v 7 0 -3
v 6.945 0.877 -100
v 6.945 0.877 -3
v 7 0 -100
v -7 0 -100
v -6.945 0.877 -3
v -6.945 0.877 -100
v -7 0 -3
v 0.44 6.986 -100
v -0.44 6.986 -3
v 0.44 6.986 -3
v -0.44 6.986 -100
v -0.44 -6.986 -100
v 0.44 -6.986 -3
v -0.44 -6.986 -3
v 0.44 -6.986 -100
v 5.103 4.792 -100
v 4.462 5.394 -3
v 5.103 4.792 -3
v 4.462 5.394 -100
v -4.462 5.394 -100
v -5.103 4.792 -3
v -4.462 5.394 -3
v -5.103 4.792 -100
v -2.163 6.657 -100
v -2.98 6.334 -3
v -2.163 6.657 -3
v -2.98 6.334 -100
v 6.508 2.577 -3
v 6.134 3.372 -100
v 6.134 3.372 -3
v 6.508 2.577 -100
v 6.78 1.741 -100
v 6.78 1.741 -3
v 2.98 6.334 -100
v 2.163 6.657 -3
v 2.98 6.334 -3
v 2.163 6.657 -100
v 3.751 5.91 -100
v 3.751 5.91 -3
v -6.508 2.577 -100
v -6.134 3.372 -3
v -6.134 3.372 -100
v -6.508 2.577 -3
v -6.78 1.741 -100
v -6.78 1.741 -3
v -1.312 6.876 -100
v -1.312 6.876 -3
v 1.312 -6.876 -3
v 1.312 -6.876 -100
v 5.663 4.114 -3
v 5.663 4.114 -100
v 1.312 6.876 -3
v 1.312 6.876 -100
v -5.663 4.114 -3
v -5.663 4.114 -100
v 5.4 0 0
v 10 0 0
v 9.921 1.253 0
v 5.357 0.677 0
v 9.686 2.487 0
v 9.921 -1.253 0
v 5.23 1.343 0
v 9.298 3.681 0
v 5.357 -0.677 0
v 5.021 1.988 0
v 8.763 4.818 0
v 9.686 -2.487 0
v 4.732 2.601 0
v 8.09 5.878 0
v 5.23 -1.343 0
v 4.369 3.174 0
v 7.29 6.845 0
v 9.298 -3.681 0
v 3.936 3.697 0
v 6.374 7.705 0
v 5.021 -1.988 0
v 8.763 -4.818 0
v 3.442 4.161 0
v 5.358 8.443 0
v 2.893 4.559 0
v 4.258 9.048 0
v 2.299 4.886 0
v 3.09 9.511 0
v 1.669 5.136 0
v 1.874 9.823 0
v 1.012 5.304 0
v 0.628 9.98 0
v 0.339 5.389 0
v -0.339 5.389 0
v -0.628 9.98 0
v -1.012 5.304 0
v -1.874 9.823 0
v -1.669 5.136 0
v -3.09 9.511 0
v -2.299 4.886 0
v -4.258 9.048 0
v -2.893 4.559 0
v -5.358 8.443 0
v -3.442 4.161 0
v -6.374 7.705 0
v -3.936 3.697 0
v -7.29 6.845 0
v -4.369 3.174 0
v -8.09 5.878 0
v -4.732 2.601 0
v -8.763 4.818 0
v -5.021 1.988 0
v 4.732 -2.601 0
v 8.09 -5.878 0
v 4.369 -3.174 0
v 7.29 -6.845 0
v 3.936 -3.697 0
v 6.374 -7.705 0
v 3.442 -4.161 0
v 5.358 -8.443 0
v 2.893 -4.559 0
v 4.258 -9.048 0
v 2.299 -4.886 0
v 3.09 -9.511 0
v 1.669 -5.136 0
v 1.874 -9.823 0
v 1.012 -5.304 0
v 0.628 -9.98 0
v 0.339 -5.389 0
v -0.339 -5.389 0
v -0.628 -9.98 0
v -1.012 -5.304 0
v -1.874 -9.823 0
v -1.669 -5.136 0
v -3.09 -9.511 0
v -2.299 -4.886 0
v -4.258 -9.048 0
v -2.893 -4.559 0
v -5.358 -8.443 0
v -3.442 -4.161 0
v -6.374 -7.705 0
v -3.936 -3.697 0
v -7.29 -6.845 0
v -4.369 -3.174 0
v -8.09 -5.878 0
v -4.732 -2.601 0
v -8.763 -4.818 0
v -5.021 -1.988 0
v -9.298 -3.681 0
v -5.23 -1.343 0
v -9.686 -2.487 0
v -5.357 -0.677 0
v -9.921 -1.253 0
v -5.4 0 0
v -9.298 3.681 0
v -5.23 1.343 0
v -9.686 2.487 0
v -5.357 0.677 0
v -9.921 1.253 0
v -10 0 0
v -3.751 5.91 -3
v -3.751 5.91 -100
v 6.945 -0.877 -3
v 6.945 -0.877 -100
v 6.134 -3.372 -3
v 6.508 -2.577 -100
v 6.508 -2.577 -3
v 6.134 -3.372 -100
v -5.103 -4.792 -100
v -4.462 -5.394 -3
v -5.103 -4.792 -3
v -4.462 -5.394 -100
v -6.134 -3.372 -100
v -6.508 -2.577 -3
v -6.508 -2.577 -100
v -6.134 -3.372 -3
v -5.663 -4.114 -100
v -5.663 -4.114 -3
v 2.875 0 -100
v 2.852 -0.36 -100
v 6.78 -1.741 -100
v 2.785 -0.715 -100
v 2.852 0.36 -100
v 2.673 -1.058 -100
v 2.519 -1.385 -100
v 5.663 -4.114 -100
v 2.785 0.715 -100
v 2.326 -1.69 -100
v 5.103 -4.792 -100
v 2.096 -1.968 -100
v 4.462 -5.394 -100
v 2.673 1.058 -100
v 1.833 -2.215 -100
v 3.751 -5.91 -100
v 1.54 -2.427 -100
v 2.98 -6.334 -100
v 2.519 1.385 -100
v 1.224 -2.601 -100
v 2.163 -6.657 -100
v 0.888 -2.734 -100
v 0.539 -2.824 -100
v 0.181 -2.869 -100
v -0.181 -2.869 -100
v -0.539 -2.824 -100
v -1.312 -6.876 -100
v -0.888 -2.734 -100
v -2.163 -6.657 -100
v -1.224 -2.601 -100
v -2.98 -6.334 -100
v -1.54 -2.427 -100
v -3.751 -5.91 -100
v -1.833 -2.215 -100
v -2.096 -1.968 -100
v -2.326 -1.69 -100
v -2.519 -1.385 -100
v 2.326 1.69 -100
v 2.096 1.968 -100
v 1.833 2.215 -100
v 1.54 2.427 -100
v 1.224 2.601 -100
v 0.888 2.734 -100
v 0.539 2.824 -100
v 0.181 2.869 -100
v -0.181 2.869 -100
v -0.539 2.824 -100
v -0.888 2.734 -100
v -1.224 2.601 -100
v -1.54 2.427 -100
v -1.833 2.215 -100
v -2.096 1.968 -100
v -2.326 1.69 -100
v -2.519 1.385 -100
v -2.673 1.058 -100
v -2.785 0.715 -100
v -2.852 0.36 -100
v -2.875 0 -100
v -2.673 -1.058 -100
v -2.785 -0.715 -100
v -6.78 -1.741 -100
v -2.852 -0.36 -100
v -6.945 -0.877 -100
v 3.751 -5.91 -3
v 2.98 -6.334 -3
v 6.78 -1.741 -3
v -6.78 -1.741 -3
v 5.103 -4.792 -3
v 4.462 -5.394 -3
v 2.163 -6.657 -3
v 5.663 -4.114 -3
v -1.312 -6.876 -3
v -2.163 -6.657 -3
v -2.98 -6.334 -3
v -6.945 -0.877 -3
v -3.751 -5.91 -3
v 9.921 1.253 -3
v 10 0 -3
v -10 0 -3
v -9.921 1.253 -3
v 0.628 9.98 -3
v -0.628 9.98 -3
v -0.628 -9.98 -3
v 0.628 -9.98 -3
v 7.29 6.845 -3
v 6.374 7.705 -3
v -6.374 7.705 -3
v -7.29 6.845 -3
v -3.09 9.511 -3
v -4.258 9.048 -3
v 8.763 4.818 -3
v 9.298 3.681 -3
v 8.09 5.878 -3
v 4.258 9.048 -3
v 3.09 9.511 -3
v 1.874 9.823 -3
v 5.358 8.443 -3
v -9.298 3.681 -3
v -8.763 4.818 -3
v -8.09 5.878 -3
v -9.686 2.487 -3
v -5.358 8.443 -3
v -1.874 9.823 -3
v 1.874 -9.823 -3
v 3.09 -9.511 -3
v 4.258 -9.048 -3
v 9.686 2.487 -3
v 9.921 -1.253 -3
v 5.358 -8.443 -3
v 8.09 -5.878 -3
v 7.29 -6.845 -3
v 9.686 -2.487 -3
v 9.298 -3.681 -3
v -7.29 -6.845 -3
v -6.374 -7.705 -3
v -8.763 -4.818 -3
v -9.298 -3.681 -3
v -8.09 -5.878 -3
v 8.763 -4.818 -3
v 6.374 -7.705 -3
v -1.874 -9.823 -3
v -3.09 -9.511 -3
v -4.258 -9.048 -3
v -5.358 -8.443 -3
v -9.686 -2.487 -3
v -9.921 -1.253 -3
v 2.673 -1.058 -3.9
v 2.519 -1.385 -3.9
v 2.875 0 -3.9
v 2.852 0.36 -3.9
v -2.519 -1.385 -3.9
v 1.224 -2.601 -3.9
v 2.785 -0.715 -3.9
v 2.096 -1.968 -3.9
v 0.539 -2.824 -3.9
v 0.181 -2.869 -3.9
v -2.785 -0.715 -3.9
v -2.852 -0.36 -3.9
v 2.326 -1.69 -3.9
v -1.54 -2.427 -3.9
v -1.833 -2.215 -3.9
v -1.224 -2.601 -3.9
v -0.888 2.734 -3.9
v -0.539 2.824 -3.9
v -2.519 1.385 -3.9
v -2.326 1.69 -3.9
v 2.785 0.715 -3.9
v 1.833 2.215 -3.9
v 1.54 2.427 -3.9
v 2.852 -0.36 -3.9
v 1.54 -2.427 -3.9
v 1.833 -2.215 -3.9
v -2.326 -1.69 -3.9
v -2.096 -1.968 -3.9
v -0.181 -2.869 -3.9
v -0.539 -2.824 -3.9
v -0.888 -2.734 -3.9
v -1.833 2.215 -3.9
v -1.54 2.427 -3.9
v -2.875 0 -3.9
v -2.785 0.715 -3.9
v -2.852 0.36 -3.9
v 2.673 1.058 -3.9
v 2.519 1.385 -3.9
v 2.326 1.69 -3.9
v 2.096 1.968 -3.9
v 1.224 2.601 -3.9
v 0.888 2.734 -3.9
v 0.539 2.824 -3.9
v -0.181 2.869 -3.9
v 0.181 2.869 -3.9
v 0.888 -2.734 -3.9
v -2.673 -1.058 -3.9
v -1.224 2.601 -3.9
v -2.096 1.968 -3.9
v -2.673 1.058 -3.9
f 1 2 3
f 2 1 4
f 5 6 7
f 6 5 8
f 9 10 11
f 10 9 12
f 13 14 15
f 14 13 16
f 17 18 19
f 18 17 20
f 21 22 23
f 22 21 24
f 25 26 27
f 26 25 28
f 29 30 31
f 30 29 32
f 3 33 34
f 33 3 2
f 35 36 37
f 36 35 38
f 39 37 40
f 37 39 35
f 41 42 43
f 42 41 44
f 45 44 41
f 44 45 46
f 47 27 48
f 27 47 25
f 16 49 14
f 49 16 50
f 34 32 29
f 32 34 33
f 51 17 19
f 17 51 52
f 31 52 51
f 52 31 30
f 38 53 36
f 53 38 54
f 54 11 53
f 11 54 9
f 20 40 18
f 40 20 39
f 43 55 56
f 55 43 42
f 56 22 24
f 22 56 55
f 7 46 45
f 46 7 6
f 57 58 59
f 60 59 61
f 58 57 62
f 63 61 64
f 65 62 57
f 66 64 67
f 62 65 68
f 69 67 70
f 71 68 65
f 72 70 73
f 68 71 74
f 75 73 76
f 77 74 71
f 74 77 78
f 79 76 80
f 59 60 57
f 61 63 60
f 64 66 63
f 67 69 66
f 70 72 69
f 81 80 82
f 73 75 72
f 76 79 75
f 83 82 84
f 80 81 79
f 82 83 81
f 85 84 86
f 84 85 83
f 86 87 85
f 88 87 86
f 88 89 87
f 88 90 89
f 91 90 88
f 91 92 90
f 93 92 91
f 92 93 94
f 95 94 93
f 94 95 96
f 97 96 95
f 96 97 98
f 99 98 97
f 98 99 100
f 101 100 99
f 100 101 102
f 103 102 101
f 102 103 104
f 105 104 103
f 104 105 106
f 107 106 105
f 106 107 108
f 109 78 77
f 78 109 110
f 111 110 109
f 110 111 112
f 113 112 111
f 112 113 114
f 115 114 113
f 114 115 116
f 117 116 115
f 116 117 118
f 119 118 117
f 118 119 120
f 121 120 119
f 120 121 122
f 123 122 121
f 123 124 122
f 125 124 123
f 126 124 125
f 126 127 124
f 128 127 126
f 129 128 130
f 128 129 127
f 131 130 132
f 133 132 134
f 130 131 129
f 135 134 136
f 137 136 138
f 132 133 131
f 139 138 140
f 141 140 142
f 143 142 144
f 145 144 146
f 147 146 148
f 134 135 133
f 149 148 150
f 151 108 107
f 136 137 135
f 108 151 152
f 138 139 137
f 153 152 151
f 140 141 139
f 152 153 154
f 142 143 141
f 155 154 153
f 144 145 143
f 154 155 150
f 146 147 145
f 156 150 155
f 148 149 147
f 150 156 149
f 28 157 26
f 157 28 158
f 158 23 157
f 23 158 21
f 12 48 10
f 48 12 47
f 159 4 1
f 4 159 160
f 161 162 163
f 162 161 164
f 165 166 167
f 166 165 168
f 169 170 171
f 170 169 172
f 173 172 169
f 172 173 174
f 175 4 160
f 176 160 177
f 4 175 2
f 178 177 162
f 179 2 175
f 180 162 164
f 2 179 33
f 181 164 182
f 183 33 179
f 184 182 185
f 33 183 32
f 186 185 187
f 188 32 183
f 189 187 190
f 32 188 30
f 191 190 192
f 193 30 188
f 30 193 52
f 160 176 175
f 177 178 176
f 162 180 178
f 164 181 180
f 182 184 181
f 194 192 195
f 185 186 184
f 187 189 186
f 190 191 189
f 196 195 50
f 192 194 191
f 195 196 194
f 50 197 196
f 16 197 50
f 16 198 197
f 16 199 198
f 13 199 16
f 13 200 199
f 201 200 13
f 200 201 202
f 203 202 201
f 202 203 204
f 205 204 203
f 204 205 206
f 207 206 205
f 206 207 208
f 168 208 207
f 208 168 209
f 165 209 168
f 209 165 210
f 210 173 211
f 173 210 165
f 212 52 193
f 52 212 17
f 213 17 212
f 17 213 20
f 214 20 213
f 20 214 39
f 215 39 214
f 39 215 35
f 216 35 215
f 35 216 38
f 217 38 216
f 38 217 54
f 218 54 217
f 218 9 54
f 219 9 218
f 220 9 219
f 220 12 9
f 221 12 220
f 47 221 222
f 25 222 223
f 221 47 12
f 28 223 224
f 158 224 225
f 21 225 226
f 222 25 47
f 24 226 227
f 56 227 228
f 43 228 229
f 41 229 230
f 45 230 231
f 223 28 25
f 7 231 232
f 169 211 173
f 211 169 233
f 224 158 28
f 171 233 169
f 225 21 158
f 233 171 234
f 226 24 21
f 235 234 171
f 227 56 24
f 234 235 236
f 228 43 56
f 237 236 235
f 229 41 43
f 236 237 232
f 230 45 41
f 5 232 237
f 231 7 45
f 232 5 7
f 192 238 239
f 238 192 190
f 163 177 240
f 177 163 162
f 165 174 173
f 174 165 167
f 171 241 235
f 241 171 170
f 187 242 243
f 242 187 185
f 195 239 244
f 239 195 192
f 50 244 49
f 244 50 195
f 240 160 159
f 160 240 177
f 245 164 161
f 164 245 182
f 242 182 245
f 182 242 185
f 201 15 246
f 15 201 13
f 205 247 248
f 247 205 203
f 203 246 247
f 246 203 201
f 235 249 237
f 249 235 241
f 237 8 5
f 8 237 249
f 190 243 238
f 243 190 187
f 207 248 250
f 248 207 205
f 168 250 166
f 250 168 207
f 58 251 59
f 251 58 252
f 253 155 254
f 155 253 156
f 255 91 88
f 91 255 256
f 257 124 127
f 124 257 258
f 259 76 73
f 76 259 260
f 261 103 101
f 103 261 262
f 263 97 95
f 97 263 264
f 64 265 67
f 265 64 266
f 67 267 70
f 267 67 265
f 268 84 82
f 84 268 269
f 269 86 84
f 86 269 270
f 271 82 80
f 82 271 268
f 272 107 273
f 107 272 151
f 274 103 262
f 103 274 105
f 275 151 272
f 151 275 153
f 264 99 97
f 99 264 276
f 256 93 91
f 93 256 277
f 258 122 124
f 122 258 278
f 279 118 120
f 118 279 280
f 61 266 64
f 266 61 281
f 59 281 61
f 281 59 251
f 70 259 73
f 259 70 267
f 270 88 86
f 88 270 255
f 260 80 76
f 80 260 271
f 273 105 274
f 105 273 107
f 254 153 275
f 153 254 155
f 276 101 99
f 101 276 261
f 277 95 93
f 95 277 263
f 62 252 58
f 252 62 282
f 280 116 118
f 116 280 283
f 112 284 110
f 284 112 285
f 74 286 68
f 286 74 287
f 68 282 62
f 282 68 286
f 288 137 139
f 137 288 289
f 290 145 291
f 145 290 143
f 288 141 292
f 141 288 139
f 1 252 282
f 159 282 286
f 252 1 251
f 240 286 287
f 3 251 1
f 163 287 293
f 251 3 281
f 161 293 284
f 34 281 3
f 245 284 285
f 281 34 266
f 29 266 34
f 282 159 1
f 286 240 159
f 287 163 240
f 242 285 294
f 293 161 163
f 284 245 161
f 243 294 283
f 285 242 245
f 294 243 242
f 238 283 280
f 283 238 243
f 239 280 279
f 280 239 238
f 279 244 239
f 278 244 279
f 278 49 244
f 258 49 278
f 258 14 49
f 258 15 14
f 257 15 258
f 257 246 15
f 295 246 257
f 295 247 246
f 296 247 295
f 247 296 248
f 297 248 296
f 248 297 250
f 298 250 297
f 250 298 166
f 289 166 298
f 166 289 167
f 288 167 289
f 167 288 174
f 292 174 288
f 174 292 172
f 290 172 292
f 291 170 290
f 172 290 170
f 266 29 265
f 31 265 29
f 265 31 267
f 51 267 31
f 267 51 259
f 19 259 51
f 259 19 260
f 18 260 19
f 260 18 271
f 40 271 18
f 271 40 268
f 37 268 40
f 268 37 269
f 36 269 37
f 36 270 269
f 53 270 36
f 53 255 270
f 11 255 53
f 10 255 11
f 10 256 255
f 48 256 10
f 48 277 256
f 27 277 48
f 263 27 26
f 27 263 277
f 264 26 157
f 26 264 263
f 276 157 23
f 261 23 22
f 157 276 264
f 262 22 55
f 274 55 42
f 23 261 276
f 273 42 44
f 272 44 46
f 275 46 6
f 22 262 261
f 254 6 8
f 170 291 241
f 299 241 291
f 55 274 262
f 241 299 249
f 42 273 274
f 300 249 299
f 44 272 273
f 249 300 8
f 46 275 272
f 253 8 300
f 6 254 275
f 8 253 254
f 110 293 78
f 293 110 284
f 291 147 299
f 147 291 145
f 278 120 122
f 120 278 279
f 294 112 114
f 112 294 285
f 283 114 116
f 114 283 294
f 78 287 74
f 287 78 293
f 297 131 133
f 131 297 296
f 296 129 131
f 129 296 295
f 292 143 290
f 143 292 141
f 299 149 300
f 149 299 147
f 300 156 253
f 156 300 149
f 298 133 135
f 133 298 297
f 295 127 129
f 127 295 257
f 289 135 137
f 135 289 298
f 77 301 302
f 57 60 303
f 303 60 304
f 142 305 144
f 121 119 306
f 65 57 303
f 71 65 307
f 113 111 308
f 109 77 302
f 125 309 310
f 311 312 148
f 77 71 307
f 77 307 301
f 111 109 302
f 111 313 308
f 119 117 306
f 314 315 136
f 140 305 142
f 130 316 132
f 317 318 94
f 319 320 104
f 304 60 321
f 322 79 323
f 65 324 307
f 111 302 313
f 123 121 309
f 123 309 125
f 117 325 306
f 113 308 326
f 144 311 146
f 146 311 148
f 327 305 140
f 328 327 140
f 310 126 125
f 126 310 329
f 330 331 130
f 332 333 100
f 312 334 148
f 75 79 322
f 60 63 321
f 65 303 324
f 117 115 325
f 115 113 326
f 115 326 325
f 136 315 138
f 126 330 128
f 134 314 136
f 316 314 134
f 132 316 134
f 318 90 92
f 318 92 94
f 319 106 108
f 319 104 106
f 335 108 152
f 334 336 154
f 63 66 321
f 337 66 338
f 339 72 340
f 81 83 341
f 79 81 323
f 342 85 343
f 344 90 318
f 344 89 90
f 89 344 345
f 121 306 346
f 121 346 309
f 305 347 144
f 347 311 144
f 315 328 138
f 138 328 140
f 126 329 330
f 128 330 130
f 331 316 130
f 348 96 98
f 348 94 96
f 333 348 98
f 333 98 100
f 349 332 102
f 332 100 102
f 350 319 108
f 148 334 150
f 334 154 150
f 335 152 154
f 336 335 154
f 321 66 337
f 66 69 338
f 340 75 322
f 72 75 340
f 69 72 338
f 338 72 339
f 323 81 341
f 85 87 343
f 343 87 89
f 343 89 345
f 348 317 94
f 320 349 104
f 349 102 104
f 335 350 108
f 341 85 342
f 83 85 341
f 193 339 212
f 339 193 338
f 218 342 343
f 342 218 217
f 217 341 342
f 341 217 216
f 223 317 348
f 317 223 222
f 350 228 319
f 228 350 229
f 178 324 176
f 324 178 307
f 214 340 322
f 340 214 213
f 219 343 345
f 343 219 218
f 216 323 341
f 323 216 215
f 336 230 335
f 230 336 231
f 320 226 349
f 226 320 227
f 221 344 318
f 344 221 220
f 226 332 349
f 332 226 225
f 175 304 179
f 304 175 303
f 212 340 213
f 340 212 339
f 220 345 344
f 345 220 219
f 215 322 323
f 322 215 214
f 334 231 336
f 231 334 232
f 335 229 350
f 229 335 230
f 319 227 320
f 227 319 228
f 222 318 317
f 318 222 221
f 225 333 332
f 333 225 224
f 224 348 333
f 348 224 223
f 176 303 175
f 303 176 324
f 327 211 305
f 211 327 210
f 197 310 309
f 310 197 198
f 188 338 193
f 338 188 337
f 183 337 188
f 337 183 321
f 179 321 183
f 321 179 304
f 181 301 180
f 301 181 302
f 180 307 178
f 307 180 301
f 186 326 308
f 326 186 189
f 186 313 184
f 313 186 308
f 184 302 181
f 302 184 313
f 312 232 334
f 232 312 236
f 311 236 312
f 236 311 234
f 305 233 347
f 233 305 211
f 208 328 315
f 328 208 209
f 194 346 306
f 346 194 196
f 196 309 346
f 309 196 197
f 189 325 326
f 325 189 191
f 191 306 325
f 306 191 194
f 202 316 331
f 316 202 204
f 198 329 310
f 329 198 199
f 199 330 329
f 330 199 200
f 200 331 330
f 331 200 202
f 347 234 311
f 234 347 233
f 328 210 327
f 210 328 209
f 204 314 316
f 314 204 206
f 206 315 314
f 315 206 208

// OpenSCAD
$fn = 50;


difference() {
	union() {
		translate(v = [0, 0, -100.0000000000]) {
			cylinder(h = 100, r = 7.0000000000);
		}
		translate(v = [0, 0, -3.0000000000]) {
			cylinder(h = 3, r = 10.0000000000);
		}
	}
	union() {
		translate(v = [0, 0, 0]) {
			rotate(a = [0, 0, 0]) {
				difference() {
					union() {
						#translate(v = [0, 0, -100.0000000000]) {
							cylinder(h = 100, r = 2.6000000000);
						}
						#translate(v = [0, 0, -3.9000000000]) {
							cylinder(h = 3.9000000000, r1 = 2.8750000000, r2 = 5.4000000000);
						}
						#translate(v = [0, 0, -100.0000000000]) {
							cylinder(h = 100, r = 2.8750000000);
						}
						#translate(v = [0, 0, -100.0000000000]) {
							cylinder(h = 100, r = 2.6000000000);
						}
					}
					union();
				}
			}
		}
	}
}
